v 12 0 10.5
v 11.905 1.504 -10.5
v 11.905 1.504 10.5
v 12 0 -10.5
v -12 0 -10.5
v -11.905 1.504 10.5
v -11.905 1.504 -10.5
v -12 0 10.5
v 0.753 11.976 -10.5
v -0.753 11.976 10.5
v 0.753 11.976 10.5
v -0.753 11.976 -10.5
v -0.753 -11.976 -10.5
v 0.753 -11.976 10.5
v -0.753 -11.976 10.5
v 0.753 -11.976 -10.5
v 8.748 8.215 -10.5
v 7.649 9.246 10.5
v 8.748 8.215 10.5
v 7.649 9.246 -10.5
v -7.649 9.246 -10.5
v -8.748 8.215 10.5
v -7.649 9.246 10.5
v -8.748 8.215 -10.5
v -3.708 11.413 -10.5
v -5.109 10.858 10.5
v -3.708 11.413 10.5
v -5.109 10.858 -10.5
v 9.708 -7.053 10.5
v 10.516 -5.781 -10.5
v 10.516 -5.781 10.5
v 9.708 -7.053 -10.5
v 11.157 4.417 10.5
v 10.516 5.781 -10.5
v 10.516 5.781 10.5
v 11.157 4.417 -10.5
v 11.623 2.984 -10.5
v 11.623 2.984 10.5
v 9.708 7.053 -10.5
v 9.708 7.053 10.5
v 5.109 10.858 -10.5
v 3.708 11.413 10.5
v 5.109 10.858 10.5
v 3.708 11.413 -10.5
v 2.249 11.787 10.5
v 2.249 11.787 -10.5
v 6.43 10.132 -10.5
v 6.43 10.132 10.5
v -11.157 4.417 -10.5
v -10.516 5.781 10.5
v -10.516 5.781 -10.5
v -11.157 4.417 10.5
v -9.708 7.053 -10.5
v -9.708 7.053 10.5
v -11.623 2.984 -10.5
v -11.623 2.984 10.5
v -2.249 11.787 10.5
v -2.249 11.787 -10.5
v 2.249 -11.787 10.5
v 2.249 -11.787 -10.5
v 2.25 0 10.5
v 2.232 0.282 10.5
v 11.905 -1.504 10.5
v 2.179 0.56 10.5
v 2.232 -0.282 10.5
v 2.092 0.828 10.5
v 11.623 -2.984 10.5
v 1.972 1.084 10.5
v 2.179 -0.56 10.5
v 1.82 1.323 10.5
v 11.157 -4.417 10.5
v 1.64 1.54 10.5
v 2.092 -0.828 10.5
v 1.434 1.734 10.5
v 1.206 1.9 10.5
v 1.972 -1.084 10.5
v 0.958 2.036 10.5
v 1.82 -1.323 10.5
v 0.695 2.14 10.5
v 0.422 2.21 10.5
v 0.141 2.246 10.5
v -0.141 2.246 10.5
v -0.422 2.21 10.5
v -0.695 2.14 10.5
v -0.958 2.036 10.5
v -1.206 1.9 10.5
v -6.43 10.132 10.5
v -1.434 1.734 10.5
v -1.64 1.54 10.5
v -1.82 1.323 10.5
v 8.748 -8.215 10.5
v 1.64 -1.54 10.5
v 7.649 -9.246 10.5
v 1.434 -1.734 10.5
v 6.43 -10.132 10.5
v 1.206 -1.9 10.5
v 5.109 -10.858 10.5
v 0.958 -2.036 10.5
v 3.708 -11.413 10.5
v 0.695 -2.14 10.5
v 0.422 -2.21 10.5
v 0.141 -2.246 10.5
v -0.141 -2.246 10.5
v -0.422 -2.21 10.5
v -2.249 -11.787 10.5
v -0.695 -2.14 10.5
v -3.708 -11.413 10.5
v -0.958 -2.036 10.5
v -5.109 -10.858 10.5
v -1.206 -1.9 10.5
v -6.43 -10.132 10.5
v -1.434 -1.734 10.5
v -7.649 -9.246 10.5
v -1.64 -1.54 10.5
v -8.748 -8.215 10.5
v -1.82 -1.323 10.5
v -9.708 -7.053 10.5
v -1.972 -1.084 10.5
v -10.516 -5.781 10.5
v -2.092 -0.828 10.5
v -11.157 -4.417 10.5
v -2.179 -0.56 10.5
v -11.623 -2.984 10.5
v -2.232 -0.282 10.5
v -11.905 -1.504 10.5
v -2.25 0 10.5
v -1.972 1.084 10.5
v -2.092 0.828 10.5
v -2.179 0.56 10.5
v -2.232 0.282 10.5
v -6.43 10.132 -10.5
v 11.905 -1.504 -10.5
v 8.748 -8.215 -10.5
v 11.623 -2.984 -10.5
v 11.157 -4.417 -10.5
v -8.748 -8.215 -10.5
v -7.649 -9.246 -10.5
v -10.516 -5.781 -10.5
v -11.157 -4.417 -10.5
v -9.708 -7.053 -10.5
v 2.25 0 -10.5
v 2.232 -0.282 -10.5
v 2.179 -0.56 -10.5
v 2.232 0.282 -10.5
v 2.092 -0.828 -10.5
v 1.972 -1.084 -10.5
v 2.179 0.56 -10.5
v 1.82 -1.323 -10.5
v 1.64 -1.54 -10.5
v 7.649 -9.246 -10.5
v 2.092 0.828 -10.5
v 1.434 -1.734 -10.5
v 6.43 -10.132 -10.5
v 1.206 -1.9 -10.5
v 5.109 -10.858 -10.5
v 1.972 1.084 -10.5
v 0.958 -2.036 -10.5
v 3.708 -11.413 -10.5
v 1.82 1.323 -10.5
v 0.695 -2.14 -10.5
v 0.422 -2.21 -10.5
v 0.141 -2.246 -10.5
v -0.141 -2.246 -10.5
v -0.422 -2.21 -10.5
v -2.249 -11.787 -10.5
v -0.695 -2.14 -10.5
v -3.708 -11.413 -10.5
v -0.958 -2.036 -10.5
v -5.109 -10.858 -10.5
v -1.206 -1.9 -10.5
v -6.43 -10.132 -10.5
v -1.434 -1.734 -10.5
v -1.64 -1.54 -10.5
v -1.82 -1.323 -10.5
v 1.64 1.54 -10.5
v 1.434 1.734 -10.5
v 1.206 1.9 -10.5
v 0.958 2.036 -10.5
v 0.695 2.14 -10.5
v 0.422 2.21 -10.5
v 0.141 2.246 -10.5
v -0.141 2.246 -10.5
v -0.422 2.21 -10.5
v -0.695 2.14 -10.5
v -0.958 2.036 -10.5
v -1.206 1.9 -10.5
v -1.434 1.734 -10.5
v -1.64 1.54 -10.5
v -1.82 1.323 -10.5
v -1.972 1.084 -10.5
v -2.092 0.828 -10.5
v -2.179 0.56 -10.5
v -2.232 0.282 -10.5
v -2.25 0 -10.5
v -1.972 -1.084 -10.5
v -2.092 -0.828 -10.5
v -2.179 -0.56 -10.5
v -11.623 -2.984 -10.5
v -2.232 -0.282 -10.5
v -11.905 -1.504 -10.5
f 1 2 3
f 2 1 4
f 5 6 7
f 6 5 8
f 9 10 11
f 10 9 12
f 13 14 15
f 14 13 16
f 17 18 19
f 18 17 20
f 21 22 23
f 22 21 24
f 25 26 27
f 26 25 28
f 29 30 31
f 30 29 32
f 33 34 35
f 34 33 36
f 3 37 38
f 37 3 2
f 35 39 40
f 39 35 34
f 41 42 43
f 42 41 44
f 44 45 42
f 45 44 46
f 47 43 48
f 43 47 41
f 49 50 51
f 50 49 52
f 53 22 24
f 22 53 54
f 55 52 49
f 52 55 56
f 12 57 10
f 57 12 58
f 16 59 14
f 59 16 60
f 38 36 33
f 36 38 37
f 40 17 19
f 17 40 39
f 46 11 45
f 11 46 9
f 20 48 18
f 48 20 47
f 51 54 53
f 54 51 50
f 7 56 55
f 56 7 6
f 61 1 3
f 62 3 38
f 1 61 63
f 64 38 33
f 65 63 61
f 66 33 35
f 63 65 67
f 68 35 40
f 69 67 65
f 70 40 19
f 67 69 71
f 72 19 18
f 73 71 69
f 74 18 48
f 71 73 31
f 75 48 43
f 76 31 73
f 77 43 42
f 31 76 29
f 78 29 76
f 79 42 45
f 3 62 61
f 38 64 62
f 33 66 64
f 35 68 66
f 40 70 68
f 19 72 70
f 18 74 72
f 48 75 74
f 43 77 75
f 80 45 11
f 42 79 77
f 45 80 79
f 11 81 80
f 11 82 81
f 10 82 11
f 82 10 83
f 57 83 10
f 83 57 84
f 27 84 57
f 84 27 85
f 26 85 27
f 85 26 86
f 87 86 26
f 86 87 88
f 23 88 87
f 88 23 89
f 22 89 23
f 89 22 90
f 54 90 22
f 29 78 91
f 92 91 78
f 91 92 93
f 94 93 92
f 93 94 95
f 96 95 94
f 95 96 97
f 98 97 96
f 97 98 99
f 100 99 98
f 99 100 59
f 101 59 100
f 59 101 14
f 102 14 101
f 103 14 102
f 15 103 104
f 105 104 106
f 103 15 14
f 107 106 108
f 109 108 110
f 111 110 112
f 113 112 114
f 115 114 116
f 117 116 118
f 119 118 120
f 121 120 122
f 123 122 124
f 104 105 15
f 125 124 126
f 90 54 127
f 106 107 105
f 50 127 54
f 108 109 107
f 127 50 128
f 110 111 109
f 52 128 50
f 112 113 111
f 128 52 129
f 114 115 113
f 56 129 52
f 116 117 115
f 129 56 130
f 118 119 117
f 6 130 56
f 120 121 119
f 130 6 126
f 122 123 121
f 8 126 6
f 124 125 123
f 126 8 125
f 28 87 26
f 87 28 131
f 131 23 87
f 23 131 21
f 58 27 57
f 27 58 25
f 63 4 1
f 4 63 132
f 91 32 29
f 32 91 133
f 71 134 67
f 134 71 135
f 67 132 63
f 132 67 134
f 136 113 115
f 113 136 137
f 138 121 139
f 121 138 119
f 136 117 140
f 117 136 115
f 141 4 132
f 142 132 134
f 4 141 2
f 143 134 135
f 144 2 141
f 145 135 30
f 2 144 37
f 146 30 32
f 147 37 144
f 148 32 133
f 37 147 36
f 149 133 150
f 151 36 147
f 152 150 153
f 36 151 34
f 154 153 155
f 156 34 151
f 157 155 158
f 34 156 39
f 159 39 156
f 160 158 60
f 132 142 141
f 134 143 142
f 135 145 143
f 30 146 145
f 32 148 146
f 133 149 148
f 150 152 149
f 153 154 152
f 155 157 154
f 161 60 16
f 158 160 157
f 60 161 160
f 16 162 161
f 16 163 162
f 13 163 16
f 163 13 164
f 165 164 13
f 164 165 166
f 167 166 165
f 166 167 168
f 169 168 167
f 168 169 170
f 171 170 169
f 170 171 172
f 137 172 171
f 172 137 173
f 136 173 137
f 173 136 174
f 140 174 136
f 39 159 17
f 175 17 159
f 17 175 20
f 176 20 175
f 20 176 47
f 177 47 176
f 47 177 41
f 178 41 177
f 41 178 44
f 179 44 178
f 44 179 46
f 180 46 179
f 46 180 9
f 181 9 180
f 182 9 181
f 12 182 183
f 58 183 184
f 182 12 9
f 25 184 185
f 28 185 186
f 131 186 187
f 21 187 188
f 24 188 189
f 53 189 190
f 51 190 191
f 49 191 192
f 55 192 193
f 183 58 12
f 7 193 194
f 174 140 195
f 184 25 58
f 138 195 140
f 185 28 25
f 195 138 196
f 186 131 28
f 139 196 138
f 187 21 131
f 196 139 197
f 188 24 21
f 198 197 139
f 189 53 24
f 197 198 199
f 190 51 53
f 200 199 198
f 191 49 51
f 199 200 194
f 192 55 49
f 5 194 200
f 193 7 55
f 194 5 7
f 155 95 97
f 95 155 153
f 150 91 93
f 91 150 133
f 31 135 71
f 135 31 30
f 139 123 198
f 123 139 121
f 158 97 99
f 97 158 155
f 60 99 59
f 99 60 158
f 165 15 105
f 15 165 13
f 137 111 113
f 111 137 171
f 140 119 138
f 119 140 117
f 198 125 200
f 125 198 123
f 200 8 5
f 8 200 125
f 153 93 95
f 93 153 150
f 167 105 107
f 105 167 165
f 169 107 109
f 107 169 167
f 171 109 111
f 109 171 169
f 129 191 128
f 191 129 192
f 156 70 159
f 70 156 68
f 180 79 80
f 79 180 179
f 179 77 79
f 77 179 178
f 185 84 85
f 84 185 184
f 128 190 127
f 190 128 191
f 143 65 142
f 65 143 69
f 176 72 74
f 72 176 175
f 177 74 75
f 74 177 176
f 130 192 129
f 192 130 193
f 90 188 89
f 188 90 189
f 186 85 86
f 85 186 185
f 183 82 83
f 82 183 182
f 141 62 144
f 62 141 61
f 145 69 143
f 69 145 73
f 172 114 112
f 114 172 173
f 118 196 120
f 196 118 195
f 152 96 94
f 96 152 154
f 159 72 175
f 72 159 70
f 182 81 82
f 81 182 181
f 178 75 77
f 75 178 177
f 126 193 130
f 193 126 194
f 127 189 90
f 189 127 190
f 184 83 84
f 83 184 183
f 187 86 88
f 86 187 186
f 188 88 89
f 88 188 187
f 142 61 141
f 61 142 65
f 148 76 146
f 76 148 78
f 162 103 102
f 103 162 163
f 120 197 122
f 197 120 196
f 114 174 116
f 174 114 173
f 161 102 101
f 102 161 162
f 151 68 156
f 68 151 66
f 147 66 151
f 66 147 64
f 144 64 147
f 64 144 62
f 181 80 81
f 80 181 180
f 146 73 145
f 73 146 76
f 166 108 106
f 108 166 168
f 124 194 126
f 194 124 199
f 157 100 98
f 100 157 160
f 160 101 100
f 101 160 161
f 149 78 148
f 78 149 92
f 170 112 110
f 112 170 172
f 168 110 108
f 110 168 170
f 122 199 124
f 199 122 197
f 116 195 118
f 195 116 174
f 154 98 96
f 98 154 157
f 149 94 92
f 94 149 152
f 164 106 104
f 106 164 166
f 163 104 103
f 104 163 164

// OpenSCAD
$fn = 50;


difference() {
	union() {
		translate(v = [0, 0, -10.5000000000]) {
			cylinder(h = 21, r = 12.0000000000);
		}
	}
	union() {
		translate(v = [0, 0, -100.0000000000]) {
			cylinder(h = 200, r = 2.2500000000);
		}
	}
}
